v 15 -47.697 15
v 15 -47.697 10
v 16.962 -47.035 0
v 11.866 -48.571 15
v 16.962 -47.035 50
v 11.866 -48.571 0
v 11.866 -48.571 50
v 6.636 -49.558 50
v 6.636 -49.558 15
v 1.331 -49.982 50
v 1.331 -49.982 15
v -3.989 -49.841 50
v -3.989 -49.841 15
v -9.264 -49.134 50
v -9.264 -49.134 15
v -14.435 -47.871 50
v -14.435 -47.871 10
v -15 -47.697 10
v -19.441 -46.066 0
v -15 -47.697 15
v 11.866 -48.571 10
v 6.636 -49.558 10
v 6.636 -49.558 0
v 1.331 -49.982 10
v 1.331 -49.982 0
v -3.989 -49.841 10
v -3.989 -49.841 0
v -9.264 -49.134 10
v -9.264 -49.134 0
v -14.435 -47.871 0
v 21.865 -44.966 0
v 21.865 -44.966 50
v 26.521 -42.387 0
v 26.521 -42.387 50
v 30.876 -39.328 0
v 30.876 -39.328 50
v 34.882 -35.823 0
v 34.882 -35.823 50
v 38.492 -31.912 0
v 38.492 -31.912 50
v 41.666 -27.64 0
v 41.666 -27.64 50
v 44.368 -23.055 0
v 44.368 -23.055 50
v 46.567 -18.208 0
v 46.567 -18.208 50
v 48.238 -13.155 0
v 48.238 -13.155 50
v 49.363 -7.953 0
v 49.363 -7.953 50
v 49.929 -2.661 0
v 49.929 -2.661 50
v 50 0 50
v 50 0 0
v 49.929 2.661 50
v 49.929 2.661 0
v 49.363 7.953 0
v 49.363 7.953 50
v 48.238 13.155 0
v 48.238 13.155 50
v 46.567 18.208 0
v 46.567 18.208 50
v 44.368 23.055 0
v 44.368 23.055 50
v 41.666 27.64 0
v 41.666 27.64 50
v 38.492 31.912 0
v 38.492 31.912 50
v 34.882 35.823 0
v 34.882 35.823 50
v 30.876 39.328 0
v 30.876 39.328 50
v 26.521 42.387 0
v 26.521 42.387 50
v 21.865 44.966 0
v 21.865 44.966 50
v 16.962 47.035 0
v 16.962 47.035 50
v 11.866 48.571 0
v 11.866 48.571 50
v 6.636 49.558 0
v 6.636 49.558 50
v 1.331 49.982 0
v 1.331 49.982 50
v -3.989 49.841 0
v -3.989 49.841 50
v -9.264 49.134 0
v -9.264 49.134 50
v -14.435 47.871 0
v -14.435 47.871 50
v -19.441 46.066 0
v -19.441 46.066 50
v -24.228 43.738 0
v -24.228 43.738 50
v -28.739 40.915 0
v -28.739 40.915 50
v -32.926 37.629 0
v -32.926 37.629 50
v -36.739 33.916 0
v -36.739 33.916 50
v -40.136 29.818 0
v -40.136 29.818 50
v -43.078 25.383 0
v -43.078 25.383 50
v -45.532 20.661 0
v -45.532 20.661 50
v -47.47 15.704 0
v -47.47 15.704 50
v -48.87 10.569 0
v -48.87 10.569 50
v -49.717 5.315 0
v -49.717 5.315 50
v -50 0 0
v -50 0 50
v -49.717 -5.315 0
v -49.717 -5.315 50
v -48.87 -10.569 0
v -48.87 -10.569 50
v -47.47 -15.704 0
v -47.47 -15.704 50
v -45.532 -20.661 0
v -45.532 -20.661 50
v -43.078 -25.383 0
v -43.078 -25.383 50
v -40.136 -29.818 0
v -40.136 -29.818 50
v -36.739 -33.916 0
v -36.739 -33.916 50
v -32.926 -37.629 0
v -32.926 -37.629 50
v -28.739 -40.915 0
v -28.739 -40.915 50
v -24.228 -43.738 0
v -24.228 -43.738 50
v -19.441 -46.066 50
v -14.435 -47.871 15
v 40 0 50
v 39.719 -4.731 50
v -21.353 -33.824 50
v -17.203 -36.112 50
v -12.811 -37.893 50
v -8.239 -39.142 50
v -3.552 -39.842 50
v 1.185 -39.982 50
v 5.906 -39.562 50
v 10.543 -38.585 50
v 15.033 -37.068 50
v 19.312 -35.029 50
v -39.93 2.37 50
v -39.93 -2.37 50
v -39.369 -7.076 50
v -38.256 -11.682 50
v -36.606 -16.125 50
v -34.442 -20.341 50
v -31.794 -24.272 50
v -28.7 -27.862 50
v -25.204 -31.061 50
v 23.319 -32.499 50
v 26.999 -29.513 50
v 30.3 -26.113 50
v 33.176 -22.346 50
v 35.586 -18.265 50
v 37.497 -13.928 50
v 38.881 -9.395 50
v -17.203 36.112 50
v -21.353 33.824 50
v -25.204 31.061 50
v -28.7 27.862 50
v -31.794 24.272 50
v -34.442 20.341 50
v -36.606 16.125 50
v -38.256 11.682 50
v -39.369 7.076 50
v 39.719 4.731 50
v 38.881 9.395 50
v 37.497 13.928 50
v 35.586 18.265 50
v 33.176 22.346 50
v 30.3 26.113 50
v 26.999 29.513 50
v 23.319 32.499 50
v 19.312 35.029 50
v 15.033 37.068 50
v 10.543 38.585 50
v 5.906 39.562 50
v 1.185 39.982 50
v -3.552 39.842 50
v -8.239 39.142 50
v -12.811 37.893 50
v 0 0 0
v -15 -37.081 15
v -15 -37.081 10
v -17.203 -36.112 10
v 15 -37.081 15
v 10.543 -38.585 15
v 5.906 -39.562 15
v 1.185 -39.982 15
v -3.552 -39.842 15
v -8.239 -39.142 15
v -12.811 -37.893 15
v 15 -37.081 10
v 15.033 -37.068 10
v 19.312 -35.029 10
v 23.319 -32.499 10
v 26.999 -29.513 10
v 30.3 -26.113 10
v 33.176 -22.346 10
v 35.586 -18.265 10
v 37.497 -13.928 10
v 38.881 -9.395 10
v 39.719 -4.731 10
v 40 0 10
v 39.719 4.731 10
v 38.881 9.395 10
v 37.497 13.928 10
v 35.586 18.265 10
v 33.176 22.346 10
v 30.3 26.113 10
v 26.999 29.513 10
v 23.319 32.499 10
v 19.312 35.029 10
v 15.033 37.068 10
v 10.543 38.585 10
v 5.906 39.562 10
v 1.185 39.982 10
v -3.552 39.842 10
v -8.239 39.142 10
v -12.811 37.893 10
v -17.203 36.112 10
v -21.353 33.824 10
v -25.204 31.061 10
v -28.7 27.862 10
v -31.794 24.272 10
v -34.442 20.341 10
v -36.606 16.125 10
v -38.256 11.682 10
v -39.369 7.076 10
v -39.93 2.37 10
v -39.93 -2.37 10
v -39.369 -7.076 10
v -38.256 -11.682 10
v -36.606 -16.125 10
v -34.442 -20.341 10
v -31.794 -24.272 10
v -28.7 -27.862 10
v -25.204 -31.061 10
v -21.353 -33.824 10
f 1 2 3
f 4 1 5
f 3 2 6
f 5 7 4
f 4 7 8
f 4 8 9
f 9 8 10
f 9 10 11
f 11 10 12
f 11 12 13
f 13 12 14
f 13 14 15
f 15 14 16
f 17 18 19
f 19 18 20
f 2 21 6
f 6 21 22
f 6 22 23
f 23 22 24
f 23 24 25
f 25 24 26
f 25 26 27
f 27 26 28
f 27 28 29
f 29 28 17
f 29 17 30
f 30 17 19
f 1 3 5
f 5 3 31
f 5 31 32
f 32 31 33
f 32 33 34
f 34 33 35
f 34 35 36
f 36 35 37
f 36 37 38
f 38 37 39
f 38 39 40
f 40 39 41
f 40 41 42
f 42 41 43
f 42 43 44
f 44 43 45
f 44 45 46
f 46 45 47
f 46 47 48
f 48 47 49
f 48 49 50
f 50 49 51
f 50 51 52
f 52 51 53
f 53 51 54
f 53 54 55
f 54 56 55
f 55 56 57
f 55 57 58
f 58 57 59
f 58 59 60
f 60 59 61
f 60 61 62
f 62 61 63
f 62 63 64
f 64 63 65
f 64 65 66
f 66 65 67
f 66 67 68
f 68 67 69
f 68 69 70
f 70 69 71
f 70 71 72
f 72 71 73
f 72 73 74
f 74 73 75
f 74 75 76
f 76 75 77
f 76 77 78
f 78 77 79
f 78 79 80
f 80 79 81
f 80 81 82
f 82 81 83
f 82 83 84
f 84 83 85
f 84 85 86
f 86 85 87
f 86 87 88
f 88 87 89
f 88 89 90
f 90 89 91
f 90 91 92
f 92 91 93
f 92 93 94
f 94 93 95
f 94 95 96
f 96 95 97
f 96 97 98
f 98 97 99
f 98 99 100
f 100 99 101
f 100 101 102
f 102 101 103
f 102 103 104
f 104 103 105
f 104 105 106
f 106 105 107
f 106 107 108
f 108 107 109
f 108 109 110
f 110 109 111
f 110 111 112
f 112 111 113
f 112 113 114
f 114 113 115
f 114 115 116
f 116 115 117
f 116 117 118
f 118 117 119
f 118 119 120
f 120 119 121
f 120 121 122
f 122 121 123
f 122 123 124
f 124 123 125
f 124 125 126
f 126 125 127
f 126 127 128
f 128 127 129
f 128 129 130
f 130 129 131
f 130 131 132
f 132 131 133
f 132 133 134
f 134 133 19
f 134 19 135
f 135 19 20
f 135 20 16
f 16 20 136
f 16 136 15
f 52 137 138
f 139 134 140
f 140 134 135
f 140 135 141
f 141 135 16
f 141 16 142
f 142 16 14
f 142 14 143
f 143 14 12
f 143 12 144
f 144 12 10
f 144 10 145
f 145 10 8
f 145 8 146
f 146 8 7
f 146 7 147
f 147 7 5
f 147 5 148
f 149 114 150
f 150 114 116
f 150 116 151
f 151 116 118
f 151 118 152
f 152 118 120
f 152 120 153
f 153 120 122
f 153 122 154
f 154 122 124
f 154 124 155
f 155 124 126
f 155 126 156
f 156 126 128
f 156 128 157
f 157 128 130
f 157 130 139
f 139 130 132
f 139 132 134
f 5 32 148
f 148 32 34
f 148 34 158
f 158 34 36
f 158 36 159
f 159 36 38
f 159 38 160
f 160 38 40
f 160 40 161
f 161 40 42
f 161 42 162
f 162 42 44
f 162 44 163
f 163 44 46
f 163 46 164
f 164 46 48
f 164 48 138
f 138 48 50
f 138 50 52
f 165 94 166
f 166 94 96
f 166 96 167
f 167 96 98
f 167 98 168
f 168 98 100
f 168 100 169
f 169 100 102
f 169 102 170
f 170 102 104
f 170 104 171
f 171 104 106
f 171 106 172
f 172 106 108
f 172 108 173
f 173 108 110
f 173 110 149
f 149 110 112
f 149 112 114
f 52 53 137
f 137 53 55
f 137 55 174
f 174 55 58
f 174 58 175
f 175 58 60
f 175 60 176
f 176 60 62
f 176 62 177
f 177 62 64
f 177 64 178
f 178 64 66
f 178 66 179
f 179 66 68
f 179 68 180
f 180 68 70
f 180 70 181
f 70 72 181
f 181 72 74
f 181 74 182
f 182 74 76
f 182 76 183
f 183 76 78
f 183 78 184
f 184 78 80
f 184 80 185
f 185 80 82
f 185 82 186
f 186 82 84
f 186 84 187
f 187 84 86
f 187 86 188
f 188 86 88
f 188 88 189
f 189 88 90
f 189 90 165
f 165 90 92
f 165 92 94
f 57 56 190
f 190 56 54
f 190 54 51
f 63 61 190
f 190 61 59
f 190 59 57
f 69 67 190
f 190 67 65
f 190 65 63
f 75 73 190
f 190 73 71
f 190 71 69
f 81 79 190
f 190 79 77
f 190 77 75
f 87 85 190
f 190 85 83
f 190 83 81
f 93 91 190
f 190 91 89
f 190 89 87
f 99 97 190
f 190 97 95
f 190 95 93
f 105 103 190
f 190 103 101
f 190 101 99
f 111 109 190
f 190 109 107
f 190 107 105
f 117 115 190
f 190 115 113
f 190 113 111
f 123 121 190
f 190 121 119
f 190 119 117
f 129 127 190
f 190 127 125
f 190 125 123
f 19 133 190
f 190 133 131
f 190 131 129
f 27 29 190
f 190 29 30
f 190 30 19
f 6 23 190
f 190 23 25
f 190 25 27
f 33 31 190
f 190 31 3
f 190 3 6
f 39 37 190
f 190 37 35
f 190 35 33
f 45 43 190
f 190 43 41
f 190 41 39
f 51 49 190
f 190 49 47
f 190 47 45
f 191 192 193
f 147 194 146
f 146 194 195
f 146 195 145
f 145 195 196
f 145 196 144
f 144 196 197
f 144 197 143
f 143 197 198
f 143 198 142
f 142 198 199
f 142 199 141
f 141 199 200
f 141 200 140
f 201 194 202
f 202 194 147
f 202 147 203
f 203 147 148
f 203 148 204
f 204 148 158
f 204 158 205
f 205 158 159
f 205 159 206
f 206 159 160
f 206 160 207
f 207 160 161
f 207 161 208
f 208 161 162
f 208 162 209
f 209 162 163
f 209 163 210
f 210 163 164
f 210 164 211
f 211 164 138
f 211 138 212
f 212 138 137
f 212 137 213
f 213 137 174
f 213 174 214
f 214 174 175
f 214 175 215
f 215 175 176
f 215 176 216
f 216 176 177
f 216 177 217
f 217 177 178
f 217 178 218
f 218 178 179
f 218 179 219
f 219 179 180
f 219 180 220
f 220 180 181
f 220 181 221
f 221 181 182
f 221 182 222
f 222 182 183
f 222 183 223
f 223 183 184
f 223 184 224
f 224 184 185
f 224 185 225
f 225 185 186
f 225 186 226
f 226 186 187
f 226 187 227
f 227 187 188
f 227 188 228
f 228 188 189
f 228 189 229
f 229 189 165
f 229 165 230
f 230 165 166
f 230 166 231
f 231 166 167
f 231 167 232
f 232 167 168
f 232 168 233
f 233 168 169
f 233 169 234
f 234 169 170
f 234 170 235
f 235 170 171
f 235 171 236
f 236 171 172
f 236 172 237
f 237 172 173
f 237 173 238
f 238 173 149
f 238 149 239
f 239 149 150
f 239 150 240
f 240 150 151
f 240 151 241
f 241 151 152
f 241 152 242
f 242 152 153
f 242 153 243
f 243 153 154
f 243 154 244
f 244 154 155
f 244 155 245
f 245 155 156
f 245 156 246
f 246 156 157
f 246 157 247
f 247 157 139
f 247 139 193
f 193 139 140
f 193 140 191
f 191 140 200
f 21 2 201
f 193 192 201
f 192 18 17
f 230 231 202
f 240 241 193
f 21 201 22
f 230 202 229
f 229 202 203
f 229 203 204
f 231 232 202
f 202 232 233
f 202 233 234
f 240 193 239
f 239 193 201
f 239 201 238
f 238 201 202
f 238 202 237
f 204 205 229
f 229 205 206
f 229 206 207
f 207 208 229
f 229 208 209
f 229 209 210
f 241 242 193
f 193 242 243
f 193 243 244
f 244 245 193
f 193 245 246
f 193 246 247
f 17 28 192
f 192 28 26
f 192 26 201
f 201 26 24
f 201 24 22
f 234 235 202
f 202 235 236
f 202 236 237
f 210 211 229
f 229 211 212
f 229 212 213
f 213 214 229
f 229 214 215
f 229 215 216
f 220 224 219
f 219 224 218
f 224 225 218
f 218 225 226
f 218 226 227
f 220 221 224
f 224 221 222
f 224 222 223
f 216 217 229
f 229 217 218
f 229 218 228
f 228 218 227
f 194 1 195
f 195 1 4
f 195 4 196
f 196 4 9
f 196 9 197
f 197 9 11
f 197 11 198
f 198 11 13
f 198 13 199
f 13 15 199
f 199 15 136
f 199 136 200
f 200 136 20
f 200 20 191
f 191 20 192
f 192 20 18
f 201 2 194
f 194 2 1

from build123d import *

# Parameters (mm, degrees)
SKETCH1_R           = 50
BOSS_EXTRUDE1_DEPTH = 50
SKETCH2_R           = 40
CUT_EXTRUDE1_DEPTH  = 40
SKETCH3_W           = 30
SKETCH3_H           = 5
CUT_EXTRUDE2_DEPTH  = 193


with BuildPart() as part:
    # Sketch1 → Boss-Extrude1 (new body)
    with BuildSketch(Plane.XY):
        Circle(SKETCH1_R)
    extrude(amount=BOSS_EXTRUDE1_DEPTH)

    # Sketch2 → Cut-Extrude1 (cut)
    with BuildSketch(Plane.XY.offset(50)):
        Circle(SKETCH2_R)
    extrude(amount=-CUT_EXTRUDE1_DEPTH, mode=Mode.SUBTRACT)

    # Sketch3 → Cut-Extrude2 (cut)
    with BuildSketch(Plane(origin=(0, 0, 0), x_dir=(1, 0, 0), z_dir=(0, 1, 0))):
        with Locations((0, -12.5)):
            Rectangle(SKETCH3_W, SKETCH3_H)
    extrude(amount=-CUT_EXTRUDE2_DEPTH, mode=Mode.SUBTRACT)


solid = part.part
